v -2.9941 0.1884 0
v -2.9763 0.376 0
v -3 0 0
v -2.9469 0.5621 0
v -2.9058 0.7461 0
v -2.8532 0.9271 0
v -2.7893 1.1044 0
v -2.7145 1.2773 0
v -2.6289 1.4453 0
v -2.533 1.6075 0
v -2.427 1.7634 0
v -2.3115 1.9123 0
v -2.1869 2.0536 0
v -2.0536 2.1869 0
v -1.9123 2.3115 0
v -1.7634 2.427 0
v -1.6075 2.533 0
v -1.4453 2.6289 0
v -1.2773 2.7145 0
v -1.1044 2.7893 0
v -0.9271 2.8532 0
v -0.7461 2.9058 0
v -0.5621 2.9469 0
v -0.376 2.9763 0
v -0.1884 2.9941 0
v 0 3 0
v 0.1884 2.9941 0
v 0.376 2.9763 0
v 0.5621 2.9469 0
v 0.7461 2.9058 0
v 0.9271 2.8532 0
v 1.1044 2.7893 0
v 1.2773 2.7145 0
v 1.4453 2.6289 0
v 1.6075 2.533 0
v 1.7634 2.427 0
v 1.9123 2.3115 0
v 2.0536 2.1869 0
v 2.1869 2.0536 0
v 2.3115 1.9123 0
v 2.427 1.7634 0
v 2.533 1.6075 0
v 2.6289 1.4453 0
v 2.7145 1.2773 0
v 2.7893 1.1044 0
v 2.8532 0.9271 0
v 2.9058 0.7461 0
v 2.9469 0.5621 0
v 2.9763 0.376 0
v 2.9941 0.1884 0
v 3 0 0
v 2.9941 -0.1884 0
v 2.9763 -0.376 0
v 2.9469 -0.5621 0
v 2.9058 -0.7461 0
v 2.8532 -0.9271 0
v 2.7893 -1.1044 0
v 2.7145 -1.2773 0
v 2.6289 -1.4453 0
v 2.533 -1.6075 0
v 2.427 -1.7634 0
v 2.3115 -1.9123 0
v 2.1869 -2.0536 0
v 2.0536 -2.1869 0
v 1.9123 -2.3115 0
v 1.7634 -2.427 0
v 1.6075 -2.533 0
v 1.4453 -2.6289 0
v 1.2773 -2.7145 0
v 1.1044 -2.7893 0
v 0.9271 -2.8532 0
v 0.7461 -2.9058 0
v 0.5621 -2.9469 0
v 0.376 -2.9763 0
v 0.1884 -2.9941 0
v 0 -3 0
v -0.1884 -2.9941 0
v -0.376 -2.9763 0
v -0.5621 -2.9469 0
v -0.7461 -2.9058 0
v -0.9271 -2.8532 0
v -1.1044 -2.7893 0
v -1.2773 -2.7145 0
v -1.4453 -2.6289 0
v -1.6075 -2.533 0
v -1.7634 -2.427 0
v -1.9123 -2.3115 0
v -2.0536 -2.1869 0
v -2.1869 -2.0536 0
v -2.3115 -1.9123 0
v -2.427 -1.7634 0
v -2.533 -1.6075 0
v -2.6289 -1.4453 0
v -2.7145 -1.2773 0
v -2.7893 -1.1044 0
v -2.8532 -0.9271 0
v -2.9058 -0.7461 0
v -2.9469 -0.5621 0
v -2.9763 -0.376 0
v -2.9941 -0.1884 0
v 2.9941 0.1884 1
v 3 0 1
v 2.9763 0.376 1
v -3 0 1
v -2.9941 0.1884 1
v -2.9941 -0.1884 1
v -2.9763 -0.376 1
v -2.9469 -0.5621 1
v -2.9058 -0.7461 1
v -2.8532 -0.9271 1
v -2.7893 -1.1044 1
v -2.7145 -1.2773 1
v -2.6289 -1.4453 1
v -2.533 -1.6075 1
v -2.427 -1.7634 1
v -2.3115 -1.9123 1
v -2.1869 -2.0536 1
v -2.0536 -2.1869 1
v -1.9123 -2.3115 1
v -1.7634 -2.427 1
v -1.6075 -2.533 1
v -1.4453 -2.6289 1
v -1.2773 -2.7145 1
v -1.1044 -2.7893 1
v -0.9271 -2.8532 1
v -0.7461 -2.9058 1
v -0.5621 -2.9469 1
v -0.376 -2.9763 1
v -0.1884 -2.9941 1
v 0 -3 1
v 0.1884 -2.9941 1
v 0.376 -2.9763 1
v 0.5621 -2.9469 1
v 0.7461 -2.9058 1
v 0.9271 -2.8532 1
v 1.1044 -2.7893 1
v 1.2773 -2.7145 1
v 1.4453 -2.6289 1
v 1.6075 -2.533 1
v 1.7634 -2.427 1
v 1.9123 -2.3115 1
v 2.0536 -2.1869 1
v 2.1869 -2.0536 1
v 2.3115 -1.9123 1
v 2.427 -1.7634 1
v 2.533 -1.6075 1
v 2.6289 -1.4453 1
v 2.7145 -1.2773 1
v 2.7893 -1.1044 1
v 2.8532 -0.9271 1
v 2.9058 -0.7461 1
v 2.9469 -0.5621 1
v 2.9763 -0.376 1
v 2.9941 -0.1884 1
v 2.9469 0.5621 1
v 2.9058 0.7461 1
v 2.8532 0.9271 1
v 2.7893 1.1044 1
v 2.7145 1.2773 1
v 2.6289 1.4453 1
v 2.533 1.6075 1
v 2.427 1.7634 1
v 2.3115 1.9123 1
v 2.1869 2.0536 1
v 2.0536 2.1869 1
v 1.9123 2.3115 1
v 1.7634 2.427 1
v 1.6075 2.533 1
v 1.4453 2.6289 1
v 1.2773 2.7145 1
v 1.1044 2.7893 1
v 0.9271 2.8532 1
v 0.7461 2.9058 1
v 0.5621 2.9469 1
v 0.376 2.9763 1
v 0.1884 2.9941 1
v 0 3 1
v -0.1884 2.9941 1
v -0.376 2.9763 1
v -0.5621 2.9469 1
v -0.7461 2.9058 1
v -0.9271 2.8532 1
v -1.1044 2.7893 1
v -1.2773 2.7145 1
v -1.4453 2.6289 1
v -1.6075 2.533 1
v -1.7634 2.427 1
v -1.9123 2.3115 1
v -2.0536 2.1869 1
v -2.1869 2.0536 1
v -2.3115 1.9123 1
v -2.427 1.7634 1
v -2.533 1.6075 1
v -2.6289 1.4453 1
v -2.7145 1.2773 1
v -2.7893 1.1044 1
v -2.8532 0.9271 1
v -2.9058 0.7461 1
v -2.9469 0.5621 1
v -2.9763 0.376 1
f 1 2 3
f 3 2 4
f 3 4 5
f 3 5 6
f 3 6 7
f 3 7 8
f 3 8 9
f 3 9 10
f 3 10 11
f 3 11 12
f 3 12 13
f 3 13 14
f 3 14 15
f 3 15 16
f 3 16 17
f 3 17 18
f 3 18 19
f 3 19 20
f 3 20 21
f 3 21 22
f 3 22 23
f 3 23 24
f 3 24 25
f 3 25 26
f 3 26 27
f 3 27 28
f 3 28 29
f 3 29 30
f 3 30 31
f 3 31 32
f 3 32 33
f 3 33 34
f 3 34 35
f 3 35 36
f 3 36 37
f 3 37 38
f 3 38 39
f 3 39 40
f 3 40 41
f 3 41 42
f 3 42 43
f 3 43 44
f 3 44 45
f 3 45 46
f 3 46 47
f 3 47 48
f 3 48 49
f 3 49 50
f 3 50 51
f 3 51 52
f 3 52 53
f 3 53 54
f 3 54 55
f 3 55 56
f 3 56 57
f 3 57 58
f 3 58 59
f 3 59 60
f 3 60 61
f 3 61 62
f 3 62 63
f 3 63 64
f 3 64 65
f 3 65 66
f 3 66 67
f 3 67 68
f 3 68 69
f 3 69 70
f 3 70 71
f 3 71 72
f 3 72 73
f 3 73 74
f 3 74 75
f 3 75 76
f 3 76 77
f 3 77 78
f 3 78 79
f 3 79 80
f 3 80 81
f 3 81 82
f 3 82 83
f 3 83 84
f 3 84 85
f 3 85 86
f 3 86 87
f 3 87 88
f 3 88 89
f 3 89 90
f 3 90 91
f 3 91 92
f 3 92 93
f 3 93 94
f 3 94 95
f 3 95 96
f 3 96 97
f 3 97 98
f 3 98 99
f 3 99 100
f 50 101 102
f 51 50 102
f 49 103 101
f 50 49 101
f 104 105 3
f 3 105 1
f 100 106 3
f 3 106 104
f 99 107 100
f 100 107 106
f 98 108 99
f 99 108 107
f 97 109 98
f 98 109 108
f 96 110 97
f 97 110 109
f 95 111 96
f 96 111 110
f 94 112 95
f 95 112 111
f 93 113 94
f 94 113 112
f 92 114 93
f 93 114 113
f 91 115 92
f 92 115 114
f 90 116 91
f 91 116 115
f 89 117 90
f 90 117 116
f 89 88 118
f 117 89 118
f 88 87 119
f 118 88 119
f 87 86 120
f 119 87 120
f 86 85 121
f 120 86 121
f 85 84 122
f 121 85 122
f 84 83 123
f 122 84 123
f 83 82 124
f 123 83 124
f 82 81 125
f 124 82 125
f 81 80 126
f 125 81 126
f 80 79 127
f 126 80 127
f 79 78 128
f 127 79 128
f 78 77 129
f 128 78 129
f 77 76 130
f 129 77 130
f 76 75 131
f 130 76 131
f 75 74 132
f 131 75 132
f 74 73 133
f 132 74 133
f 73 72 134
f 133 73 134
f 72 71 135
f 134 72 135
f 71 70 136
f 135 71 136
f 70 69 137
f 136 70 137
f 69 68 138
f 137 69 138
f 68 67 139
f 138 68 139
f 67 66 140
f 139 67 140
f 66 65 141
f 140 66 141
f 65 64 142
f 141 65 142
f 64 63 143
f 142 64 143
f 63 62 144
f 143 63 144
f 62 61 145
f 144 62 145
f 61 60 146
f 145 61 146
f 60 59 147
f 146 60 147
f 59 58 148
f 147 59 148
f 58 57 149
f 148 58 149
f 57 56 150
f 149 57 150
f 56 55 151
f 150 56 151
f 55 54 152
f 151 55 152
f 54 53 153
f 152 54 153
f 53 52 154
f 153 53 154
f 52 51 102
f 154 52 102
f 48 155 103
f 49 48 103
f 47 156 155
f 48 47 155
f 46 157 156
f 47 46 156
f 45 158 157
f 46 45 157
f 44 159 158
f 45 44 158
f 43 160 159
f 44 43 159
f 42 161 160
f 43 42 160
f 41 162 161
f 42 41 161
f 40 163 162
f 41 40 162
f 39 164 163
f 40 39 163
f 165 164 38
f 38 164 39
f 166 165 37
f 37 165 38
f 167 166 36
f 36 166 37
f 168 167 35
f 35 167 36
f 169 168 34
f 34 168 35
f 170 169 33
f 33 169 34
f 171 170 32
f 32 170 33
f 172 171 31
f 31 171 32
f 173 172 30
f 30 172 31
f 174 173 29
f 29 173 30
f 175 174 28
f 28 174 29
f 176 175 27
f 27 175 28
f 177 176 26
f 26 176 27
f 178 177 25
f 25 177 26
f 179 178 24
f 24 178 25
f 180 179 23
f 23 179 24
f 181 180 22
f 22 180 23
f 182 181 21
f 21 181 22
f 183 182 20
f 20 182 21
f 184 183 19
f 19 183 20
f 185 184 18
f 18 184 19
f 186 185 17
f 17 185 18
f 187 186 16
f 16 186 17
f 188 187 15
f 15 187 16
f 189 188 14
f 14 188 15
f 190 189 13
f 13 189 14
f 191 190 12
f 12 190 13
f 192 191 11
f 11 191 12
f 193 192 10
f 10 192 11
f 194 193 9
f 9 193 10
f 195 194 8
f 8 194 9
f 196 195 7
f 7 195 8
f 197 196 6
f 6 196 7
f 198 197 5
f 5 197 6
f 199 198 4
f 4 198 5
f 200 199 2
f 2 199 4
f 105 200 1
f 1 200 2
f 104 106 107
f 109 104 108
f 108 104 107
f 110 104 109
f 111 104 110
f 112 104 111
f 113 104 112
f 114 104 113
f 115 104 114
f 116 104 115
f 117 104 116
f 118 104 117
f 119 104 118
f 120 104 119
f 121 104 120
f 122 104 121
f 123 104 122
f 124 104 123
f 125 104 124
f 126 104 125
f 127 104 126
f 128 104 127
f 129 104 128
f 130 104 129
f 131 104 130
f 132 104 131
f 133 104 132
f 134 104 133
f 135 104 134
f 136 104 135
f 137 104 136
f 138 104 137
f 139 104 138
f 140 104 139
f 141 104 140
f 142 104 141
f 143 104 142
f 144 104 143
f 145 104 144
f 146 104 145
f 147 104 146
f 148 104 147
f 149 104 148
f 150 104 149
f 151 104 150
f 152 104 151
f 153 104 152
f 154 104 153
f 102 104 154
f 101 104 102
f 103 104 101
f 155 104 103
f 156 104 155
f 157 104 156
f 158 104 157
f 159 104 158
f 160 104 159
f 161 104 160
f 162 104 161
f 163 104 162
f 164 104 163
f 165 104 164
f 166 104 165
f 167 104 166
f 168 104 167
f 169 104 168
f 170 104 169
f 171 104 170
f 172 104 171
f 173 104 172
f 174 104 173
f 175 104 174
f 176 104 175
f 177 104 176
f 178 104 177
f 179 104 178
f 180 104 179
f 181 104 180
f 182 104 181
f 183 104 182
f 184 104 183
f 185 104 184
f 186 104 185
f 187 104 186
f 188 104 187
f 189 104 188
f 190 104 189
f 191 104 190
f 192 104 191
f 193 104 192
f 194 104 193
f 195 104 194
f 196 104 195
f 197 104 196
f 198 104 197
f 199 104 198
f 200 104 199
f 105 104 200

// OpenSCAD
/*
 * OpenSCAD Workshop Examples
 * Copyright (c) 2013 Anar Software LLC. < http://anars.com >
 *
 * This program is free software: you can redistribute it and/or modify it under
 * the terms of the GNU General Public License as published by the Free Software
 * Foundation, either version 3 of the License, or (at your option) any later
 * version.
 *
 * This program is distributed in the hope that it will be useful, but WITHOUT
 * ANY WARRANTY; without even the implied warranty of MERCHANTABILITY or FITNESS
 * FOR A PARTICULAR PURPOSE. See the GNU General Public License for more details.
 *
 * You should have received a copy of the GNU General Public License along with
 * this program. If not, see < http://www.gnu.org/licenses/ >
 *
 */
/*

Creates 3 unit radius, 1 unit height cylinder.

Parameters :

	cylinder(r = x);

*/

$fn = 100;

cylinder(r = 3);
